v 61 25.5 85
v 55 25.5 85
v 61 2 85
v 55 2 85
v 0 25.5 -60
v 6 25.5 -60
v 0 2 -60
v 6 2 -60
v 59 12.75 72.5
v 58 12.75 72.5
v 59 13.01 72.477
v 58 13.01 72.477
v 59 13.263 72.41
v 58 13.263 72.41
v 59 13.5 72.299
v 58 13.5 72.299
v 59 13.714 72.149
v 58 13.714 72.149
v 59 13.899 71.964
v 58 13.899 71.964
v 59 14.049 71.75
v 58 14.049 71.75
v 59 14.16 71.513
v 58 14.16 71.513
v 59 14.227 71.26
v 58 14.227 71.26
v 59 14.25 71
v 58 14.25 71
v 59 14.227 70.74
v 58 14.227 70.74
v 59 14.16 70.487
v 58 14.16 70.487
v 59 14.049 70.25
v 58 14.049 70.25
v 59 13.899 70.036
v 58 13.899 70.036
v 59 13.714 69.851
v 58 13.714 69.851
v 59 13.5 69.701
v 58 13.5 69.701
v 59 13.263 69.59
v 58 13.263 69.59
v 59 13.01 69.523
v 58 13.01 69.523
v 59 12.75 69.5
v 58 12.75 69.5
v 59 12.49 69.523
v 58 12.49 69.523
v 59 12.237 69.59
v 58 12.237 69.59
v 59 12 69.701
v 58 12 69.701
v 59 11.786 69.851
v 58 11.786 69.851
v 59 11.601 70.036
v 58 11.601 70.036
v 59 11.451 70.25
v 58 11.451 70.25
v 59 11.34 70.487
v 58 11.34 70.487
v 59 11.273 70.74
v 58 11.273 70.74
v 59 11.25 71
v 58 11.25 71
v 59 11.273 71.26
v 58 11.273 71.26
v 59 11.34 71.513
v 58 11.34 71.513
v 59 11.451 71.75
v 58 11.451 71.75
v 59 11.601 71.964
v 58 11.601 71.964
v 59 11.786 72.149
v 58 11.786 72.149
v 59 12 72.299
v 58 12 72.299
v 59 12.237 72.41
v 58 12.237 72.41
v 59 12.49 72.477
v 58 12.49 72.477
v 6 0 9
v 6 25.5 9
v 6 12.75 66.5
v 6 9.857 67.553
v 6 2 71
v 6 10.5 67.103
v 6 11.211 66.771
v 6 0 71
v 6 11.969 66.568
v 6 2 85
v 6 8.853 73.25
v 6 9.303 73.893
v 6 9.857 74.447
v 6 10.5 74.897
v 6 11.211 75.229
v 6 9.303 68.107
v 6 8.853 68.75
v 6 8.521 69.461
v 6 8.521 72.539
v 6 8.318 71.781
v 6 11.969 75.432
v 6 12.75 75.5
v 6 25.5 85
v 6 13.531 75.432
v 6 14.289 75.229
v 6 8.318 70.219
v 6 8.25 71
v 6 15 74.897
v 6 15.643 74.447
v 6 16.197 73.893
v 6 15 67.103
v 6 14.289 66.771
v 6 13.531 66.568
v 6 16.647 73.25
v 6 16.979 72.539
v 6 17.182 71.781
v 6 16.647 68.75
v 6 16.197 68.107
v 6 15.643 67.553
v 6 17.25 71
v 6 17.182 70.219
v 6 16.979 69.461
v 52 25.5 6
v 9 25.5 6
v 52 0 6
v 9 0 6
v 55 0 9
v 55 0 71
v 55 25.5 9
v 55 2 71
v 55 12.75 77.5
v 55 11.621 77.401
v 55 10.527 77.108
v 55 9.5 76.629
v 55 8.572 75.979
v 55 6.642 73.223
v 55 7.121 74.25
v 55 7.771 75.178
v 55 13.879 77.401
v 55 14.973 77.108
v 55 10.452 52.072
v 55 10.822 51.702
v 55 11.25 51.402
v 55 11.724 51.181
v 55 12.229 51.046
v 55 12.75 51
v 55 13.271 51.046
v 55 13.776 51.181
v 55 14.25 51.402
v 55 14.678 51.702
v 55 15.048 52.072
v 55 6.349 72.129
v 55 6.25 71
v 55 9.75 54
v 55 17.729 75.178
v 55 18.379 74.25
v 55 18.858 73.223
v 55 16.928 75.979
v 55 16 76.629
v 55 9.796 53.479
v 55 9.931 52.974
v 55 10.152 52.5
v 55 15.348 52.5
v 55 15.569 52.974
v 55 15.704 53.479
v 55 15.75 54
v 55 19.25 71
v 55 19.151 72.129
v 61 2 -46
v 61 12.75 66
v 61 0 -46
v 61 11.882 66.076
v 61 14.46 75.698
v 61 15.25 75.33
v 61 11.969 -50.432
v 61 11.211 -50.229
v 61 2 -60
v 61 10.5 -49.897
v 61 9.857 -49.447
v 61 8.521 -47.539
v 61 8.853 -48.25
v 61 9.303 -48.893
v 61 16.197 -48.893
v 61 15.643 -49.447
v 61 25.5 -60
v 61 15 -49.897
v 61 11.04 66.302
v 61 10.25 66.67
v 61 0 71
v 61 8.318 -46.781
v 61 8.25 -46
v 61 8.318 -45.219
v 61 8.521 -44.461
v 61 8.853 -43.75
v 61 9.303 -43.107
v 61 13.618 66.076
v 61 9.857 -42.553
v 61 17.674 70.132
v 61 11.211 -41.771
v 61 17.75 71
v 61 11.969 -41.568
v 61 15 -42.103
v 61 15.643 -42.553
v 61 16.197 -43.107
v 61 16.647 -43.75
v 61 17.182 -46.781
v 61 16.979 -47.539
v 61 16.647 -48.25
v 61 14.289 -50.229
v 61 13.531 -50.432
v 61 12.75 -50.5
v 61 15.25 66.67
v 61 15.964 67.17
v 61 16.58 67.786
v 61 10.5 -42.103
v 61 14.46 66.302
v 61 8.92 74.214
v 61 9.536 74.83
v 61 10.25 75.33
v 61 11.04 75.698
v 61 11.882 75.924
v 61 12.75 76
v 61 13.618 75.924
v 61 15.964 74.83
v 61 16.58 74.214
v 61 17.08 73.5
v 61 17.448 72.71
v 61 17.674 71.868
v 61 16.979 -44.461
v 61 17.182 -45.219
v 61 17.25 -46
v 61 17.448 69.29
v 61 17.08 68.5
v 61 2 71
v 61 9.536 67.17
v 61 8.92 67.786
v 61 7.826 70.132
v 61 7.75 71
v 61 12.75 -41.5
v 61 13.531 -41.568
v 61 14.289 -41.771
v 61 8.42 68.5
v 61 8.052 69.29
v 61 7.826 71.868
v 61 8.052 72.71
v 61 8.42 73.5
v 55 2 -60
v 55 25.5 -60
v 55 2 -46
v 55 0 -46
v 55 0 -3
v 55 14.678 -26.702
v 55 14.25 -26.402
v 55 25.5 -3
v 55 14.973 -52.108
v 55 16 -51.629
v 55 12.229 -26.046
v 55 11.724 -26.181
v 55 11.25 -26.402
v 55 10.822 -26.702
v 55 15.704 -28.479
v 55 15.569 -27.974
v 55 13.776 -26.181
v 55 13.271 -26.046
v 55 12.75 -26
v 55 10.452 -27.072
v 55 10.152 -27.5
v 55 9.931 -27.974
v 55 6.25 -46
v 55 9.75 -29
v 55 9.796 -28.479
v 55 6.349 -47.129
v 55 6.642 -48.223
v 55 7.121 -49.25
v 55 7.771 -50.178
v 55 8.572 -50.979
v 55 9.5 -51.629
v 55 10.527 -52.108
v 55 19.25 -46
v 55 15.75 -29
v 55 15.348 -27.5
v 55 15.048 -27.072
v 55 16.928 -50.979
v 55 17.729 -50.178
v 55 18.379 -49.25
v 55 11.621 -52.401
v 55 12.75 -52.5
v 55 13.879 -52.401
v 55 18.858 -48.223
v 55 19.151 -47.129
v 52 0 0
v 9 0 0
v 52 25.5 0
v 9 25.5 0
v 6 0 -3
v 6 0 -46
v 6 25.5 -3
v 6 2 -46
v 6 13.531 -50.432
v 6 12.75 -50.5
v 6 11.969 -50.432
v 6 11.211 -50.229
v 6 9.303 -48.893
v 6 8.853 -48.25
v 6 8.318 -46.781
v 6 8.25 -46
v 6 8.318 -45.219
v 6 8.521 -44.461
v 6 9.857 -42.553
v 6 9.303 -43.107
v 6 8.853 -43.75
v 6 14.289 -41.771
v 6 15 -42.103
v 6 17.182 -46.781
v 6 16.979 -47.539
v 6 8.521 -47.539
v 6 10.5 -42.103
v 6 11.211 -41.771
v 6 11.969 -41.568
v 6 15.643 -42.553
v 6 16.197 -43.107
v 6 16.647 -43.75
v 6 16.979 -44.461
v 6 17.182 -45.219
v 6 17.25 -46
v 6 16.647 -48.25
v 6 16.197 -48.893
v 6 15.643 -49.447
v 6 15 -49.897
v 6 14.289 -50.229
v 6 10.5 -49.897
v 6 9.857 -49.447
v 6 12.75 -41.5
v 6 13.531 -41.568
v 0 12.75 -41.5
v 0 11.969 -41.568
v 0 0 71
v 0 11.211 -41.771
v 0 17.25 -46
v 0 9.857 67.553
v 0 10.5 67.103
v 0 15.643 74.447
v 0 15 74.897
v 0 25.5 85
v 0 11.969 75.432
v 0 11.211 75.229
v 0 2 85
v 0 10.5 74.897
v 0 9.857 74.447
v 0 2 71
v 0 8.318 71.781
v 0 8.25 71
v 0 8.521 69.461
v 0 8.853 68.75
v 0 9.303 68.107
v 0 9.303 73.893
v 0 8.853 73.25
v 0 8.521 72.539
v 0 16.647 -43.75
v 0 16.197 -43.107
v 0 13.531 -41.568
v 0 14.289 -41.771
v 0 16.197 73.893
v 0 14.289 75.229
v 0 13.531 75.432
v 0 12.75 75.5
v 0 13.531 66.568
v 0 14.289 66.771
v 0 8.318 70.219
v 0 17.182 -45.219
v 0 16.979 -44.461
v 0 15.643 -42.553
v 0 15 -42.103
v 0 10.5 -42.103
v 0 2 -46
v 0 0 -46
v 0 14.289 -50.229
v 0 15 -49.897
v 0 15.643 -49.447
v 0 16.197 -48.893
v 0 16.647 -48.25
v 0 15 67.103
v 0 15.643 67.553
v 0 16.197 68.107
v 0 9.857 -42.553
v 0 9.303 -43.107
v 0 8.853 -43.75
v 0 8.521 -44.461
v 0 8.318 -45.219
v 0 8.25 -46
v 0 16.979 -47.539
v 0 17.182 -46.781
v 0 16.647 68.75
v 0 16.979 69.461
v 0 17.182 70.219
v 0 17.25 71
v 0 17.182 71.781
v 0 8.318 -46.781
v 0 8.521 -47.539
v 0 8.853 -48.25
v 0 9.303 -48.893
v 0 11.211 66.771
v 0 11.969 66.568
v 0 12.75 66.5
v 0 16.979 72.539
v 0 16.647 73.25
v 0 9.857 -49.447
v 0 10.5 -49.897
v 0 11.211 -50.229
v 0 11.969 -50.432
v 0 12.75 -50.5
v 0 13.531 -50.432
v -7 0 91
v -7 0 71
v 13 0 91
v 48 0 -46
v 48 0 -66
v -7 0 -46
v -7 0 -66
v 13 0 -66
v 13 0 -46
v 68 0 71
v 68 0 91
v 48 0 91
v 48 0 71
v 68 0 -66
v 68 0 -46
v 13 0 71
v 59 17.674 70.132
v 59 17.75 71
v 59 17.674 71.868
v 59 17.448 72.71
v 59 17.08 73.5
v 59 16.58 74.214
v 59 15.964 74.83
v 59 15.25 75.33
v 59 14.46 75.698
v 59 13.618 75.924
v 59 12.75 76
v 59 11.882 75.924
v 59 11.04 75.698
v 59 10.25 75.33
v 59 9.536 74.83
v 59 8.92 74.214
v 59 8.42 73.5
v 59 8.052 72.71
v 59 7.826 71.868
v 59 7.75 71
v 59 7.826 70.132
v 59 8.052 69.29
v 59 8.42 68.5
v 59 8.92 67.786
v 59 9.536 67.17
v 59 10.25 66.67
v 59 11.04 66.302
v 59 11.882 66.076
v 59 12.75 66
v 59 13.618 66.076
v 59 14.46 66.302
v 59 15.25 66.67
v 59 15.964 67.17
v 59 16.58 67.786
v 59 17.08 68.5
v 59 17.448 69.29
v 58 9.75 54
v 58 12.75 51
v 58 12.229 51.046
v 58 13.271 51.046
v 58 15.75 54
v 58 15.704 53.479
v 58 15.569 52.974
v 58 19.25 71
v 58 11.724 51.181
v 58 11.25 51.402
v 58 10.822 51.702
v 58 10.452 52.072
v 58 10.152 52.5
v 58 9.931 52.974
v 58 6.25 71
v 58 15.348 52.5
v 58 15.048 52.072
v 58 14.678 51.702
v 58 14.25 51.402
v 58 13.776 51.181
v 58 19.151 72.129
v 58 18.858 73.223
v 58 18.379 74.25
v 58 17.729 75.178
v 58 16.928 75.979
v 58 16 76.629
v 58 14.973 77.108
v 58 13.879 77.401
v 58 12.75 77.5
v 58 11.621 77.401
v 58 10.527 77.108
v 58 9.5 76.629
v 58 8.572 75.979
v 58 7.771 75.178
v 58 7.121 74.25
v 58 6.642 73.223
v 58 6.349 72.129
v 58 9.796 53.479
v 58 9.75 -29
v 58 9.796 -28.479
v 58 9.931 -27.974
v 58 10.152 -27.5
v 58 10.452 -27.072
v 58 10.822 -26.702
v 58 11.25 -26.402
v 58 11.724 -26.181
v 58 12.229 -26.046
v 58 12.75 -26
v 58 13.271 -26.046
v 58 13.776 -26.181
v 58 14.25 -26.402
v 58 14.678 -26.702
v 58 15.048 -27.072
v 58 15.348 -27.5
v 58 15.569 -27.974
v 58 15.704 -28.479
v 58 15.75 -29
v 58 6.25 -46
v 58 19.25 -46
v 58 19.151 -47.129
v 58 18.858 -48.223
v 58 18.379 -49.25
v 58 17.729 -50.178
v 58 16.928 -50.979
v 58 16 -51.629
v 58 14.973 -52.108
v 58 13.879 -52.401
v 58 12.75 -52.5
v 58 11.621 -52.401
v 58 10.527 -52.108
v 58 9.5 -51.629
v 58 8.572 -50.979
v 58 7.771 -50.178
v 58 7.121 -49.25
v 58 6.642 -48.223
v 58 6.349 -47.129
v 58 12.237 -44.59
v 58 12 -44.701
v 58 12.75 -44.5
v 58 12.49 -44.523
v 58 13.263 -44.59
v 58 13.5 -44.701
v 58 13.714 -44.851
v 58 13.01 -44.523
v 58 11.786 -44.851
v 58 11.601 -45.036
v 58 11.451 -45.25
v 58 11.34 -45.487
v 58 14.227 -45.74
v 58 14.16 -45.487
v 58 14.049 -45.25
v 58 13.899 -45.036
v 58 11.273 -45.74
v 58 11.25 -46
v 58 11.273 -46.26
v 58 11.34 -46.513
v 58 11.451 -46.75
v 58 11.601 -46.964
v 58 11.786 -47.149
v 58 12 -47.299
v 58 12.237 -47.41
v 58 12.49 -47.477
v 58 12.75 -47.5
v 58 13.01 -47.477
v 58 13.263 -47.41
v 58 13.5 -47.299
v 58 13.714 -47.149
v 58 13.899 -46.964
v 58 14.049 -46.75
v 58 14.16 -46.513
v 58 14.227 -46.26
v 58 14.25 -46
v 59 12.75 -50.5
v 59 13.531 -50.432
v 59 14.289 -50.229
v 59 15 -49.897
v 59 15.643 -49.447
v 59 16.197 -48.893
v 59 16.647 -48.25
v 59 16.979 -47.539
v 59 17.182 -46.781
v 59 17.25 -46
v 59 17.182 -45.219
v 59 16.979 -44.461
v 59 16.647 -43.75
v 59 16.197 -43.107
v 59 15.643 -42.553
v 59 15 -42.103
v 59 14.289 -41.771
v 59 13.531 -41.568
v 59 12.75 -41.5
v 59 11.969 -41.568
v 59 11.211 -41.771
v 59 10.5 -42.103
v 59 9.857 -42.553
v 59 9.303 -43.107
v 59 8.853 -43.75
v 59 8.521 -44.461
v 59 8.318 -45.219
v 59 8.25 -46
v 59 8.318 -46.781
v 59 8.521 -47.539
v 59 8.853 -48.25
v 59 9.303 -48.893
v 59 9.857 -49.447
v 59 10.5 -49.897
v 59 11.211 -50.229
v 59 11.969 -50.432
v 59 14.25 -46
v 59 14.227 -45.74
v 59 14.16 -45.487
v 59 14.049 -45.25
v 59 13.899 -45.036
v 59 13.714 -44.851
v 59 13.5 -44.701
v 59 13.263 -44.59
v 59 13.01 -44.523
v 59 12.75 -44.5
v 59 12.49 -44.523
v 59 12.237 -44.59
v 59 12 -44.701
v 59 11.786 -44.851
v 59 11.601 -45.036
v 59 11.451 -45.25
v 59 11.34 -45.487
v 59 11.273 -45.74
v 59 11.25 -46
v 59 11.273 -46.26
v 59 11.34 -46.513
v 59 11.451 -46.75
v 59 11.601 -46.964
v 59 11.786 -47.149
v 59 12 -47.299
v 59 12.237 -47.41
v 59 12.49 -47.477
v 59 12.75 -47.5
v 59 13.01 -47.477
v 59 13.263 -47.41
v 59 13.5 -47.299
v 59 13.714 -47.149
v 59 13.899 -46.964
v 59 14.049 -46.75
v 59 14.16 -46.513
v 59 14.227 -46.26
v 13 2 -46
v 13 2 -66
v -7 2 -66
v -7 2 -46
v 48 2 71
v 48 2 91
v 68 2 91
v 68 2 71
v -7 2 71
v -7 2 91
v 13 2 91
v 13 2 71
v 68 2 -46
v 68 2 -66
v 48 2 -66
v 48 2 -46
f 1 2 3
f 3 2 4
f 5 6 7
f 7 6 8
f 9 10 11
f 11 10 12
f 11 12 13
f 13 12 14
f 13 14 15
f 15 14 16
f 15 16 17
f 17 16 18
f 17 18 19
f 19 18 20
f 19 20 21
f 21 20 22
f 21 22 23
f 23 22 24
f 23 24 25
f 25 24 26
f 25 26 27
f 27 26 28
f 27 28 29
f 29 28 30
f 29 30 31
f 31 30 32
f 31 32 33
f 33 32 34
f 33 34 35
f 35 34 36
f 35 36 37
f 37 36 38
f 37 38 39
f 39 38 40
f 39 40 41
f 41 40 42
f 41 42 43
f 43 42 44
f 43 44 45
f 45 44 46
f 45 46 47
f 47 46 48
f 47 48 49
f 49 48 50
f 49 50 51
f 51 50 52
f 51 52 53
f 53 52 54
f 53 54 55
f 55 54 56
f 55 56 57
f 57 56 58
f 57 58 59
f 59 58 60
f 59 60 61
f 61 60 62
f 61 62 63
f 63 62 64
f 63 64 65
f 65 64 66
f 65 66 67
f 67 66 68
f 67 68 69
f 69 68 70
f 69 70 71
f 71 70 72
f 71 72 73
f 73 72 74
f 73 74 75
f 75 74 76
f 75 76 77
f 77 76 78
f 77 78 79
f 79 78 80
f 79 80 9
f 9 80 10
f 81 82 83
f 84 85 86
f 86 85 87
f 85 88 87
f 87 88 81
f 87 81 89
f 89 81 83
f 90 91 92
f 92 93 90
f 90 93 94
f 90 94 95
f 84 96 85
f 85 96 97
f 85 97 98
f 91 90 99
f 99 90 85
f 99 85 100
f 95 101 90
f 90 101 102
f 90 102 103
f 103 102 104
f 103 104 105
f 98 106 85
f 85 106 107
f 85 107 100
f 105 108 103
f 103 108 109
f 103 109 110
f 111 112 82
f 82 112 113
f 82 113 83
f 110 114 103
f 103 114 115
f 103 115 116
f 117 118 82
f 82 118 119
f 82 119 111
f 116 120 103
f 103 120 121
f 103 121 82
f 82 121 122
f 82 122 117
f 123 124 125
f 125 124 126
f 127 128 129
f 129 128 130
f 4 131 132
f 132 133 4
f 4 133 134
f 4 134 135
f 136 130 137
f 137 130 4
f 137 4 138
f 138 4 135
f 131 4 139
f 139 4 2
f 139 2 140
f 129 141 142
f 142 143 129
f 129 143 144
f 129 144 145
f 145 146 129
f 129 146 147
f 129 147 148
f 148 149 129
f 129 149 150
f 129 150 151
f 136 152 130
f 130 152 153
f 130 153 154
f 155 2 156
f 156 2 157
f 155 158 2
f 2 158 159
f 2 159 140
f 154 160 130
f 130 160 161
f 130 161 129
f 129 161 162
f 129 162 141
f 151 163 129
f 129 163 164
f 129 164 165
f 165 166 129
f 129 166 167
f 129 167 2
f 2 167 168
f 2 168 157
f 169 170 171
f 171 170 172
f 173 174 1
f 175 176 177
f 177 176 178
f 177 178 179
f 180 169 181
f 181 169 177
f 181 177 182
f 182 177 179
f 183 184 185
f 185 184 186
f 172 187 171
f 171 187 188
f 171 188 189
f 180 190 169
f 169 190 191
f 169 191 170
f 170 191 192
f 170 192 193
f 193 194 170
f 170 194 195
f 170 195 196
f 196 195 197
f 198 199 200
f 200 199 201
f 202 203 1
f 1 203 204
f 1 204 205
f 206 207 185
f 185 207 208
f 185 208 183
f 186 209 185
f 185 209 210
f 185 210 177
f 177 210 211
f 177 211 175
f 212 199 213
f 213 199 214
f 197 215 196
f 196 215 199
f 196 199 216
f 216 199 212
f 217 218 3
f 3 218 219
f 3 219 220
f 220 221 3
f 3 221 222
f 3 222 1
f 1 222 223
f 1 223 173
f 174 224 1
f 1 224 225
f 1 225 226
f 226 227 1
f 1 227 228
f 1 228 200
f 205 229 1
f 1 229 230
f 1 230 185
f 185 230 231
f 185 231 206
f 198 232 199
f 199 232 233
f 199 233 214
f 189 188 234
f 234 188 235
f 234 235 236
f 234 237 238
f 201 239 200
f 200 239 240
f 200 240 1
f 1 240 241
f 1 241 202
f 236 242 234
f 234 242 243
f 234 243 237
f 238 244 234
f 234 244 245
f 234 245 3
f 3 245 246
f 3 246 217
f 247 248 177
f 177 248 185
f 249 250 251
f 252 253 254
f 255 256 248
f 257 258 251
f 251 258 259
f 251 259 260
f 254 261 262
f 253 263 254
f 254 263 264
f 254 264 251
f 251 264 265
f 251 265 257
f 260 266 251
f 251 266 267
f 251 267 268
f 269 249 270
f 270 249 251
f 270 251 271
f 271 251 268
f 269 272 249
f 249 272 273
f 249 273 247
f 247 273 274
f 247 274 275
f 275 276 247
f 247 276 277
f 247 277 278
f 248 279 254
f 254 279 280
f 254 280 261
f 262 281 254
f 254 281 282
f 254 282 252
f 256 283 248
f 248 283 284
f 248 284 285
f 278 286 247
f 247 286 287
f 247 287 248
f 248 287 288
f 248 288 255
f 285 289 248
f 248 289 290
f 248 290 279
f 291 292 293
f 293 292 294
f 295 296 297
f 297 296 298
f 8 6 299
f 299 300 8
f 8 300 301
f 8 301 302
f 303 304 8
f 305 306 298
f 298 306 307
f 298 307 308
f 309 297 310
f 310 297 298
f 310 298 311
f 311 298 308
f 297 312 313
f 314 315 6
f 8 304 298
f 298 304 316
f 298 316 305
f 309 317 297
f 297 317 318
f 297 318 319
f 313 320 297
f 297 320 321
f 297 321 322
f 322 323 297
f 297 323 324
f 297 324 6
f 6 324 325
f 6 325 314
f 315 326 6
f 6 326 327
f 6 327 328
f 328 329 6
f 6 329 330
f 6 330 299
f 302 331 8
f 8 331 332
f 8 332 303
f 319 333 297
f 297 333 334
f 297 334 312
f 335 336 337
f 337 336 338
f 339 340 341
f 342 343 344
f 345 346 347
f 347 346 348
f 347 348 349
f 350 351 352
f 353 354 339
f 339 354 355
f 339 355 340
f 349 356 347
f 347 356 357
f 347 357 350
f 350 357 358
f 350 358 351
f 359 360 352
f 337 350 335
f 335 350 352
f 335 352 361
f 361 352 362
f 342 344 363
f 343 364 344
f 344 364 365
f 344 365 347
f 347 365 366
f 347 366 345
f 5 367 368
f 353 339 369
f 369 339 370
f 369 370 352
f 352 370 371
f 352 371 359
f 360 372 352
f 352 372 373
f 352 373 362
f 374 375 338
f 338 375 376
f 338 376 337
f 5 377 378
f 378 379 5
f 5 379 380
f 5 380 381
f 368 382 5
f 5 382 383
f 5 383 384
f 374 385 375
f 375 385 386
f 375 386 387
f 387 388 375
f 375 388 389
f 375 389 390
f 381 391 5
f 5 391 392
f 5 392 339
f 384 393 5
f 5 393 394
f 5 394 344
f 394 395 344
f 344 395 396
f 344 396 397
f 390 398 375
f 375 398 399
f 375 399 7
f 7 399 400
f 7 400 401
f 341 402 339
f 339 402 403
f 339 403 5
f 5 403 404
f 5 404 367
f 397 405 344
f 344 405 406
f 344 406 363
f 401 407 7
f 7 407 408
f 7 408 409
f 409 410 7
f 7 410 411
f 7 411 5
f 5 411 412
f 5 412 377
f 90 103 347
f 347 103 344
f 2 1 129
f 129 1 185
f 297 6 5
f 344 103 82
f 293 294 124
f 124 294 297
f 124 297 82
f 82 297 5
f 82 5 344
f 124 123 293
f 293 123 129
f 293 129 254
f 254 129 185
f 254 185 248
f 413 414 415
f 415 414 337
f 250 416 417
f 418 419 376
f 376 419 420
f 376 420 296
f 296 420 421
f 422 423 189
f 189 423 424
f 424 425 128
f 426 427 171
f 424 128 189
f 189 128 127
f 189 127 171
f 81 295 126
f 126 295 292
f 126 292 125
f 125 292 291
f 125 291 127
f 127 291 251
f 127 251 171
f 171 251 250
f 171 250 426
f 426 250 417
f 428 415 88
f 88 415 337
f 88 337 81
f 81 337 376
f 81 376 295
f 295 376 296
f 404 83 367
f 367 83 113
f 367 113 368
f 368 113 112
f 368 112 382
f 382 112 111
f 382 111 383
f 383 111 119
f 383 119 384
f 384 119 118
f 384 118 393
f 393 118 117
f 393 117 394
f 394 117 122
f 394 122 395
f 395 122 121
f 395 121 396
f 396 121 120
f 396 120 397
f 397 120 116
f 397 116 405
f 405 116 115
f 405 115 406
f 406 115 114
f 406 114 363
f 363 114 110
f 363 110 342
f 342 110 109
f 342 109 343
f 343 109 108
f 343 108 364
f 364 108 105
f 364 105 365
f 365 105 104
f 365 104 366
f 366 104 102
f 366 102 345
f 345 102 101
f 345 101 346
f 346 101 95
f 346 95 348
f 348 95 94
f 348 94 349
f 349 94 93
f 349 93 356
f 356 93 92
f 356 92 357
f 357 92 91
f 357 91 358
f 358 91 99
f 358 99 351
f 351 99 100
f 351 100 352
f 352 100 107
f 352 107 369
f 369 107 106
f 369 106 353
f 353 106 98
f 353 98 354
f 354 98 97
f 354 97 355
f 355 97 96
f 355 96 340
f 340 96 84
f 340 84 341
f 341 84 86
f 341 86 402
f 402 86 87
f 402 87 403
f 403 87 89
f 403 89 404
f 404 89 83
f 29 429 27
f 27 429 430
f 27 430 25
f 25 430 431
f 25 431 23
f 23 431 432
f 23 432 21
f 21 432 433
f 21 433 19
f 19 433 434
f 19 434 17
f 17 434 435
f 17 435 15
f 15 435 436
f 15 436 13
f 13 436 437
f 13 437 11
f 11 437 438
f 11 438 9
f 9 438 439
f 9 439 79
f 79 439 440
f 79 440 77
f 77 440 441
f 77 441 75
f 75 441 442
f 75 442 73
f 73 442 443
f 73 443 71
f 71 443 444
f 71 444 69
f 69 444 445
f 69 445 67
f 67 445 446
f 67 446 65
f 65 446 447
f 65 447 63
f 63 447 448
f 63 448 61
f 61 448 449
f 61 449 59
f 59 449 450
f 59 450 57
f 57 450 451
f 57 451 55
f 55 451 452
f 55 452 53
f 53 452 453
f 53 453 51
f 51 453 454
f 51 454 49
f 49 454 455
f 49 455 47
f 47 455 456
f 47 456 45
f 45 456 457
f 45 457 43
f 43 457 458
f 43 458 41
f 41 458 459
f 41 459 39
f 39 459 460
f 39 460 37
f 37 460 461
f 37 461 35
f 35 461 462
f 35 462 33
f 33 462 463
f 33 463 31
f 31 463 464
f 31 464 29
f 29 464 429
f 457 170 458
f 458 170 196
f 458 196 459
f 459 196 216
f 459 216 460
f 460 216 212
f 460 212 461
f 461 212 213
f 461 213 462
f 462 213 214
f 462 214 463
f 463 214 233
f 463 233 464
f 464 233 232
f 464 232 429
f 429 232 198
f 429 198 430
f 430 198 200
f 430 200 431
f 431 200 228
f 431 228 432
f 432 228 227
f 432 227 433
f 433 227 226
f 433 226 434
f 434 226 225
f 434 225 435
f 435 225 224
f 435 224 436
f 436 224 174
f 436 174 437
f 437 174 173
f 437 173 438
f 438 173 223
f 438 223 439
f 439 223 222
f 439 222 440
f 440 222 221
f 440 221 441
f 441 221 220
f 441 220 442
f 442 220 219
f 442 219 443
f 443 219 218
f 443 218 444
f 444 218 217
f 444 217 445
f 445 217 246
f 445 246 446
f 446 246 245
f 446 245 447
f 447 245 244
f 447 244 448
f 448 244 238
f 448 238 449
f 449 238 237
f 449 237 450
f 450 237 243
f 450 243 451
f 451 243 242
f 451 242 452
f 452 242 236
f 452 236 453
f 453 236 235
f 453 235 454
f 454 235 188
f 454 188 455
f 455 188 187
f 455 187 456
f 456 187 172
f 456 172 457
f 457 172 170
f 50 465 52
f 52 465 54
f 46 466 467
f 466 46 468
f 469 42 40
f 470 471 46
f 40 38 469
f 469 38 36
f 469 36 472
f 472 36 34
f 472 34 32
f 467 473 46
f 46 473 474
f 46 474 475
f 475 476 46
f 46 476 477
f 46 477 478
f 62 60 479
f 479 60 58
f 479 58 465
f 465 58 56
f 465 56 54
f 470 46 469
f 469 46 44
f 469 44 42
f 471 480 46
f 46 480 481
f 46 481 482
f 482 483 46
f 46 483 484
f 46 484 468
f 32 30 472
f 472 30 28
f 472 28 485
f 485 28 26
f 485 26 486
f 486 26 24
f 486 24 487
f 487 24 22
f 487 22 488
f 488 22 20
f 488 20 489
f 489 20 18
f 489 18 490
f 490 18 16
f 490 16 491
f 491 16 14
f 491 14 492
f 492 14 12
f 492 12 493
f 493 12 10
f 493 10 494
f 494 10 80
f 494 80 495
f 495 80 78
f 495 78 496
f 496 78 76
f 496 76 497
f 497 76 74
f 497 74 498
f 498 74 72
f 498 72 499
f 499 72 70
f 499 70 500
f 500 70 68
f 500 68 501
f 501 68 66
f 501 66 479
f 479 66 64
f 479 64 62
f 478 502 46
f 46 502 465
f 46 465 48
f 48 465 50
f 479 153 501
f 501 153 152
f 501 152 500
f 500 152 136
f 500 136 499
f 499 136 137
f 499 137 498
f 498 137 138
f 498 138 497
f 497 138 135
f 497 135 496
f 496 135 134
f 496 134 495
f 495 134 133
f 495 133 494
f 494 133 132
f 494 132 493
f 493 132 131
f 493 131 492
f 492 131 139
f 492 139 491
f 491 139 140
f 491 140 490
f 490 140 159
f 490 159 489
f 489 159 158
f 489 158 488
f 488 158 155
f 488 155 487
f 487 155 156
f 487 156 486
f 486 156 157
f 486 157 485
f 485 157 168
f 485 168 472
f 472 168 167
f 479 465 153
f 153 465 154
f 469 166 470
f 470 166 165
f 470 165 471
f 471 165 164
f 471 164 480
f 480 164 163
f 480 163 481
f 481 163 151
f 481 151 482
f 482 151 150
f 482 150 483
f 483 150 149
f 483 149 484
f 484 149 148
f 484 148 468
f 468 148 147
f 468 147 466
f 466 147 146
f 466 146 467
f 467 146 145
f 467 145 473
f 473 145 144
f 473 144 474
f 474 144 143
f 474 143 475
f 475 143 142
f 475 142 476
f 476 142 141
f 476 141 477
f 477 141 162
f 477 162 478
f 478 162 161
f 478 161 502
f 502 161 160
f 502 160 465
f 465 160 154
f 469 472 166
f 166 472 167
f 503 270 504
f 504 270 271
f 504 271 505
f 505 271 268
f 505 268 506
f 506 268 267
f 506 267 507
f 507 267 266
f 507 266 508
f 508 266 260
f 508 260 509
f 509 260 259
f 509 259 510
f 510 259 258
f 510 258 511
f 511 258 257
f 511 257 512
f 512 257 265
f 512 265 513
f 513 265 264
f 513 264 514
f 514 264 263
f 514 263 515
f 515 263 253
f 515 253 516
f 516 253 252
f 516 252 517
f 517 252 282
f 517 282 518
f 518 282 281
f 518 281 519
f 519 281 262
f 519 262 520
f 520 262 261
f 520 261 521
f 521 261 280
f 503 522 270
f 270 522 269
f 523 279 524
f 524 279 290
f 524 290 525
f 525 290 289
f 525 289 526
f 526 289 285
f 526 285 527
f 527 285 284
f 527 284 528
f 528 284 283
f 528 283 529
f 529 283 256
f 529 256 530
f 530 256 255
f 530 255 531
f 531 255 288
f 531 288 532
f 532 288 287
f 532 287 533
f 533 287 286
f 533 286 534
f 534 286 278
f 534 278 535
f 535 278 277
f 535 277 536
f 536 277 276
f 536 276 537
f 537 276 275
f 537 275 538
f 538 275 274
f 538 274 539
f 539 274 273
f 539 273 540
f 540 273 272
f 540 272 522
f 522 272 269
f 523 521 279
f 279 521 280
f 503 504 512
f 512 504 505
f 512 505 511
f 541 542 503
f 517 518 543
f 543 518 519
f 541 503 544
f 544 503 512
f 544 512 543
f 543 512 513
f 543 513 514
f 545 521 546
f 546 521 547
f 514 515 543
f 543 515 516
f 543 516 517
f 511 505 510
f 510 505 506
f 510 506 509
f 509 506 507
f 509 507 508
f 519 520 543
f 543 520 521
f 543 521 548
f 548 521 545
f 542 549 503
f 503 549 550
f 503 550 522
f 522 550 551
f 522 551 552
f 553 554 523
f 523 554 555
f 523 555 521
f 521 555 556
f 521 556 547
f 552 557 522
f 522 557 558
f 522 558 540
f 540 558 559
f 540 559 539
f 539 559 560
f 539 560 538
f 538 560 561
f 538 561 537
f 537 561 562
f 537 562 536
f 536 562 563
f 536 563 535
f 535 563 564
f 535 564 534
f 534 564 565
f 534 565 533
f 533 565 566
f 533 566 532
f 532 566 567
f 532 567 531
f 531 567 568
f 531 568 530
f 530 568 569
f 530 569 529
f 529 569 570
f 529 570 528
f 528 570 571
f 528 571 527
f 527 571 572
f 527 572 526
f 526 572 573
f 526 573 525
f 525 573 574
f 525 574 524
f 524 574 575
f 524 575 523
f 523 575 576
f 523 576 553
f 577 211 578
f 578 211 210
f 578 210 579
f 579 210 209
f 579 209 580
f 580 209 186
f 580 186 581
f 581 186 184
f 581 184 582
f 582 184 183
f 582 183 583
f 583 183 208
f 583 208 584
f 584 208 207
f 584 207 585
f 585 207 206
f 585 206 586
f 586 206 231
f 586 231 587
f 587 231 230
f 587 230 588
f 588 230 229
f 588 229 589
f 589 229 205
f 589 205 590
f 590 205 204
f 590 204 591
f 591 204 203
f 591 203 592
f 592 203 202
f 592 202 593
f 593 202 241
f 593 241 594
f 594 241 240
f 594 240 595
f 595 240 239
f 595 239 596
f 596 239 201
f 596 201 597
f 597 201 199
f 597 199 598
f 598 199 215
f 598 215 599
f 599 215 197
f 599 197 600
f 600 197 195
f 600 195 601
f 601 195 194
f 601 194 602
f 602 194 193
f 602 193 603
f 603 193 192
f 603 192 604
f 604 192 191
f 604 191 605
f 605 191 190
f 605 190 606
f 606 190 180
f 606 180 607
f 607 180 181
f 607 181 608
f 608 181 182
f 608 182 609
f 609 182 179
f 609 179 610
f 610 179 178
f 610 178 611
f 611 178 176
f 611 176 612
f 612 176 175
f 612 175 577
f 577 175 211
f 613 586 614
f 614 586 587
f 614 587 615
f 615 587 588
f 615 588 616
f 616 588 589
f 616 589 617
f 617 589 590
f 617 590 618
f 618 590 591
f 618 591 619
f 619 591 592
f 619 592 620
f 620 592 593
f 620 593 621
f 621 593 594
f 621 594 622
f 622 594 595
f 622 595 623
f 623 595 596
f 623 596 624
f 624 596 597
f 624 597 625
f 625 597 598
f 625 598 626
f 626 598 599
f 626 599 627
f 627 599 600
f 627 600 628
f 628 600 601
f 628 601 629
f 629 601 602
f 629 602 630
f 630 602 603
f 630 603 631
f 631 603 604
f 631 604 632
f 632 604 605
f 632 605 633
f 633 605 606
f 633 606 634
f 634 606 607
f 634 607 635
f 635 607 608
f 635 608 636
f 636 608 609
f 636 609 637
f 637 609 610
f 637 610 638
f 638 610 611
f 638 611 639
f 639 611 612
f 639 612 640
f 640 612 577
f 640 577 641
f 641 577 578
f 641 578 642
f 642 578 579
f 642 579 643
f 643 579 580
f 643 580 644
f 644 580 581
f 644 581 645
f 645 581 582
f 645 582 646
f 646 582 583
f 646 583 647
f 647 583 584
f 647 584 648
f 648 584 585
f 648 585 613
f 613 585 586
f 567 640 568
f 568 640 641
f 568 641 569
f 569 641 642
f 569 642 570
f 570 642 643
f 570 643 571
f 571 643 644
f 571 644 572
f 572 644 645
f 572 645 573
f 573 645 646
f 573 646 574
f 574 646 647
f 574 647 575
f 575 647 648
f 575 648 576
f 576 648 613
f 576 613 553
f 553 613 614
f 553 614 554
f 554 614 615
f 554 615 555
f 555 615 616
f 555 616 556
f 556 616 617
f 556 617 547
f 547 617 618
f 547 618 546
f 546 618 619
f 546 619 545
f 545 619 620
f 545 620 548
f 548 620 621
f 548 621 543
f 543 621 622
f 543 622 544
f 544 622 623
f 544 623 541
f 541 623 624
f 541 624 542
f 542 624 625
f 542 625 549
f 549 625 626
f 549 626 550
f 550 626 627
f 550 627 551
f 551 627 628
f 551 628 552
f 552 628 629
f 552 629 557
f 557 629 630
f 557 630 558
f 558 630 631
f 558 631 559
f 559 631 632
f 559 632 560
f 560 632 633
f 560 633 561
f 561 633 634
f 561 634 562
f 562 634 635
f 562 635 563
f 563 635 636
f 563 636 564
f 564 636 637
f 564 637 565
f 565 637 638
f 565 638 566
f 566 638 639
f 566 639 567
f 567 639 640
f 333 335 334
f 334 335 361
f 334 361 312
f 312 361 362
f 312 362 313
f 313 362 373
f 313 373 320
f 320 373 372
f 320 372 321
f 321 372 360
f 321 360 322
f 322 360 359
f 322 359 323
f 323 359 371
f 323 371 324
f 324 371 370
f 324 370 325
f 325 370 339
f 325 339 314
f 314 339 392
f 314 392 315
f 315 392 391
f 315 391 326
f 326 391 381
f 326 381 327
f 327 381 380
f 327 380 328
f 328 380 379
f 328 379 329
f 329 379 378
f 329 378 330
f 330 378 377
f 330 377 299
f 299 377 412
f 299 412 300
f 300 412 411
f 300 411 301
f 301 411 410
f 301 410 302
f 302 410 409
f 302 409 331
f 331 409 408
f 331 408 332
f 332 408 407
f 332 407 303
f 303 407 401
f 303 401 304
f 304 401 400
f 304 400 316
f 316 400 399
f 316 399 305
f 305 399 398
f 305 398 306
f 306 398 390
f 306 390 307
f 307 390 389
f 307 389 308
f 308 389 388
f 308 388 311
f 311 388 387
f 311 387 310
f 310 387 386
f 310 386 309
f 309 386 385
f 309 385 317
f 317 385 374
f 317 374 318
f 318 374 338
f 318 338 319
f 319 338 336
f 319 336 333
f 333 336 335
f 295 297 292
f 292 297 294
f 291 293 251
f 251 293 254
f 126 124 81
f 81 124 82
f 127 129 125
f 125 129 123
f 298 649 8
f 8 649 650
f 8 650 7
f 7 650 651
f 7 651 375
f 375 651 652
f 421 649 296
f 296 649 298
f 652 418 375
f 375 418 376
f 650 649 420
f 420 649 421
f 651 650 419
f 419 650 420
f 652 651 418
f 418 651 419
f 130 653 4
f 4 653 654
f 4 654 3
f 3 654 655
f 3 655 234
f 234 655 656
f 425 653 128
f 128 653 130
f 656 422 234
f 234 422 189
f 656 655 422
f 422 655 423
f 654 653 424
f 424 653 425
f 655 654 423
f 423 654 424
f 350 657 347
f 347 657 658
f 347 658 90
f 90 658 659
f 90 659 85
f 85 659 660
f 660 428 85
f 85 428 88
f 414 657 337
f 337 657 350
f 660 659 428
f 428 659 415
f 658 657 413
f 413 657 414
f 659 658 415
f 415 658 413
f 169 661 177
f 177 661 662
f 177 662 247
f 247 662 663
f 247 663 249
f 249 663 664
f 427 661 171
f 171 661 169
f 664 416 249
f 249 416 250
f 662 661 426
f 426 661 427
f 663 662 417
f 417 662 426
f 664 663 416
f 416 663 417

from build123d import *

# Parameters (mm, degrees)
BOSS_EXTRUDE1_DEPTH     = 25.5
SKETCH2_R               = 4.5
CUT_EXTRUDE1_DEPTH      = 25
SKETCH3_R               = 1.5
CUT_EXTRUDE2_DEPTH      = 10
SKETCH4_R               = 5
CUT_EXTRUDE3_DEPTH      = 2
CUT_EXTRUDE4_DEPTH      = 3
CUT_EXTRUDE5_DEPTH      = 3
SKETCH7_R               = 4.5
CUT_EXTRUDE6_DEPTH      = 2
CUT_EXTRUDE7_DEPTH      = 108.685885798
CUT_EXTRUDE7_DEPTH_BACK = 108.685885798
SKETCH8_R               = 1.5
CUT_EXTRUDE8_START      = -10
SKETCH9_R               = 4.5
CUT_EXTRUDE8_DEPTH      = 10
BOSS_EXTRUDE2_DEPTH     = 25.5
SKETCH11_W              = 20
SKETCH11_H              = 20
BOSS_EXTRUDE3_DEPTH     = 2


with BuildPart() as part:
    # Sketch1 → Boss-Extrude1 (new body)
    with BuildSketch(Plane(origin=(0, 0, 0), x_dir=(1, 0, 0), z_dir=(0, 1, 0))):
        Polygon((6, -6), (55, -6), (55, -85), (61, -85), (61, 60), (55, 60), (55, 0), (6, 0), (6, 60), (0, 60), (0, -85), (6, -85), align=None)
    extrude(amount=BOSS_EXTRUDE1_DEPTH)

    # Sketch2 → Cut-Extrude1 (cut)
    with BuildSketch(Plane(origin=(6, 0, 0), x_dir=(0, 0, -1), z_dir=(1, 0, 0))):
        with Locations((-71, 12.75)):
            Circle(SKETCH2_R)
    extrude(amount=-CUT_EXTRUDE1_DEPTH, mode=Mode.SUBTRACT)

    # Sketch3 → Cut-Extrude2 (cut)
    with BuildSketch(Plane.ZY.offset(-55)):
        with Locations((71, 12.75)):
            Circle(SKETCH3_R)
    extrude(amount=-CUT_EXTRUDE2_DEPTH, mode=Mode.SUBTRACT)

    # Sketch4 → Cut-Extrude3 (cut)
    with BuildSketch(Plane(origin=(61, 0, 0), x_dir=(0, 0, -1), z_dir=(1, 0, 0))):
        with Locations((-71, 12.75)):
            Circle(SKETCH4_R)
    extrude(amount=-CUT_EXTRUDE3_DEPTH, mode=Mode.SUBTRACT)

    # Sketch5 → Cut-Extrude4 (cut)
    with BuildSketch(Plane.ZY.offset(-55)):
        with BuildLine():
            Line((71, 19.25), (54, 15.75))
            ThreePointArc((54, 15.75), (51, 12.75), (54, 9.75))
            Line((54, 9.75), (71, 6.25))
            ThreePointArc((71, 6.25), (77.5, 12.75), (71, 19.25))
        make_face()
    extrude(amount=-CUT_EXTRUDE4_DEPTH, mode=Mode.SUBTRACT)

    # Sketch6 → Cut-Extrude5 (cut)
    with BuildSketch(Plane.ZY.offset(-55)):
        with BuildLine():
            Line((-29, 9.75), (-46, 6.25))
            ThreePointArc((-46, 6.25), (-52.5, 12.75), (-46, 19.25))
            Line((-46, 19.25), (-29, 15.75))
            ThreePointArc((-29, 15.75), (-26, 12.75), (-29, 9.75))
        make_face()
    extrude(amount=-CUT_EXTRUDE5_DEPTH, mode=Mode.SUBTRACT)

    # Sketch7 → Cut-Extrude6 (cut)
    with BuildSketch(Plane(origin=(61, 0, 0), x_dir=(0, 0, -1), z_dir=(1, 0, 0))):
        with Locations((46, 12.75)):
            Circle(SKETCH7_R)
    extrude(amount=-CUT_EXTRUDE6_DEPTH, mode=Mode.SUBTRACT)

    # Sketch8 → Cut-Extrude7 (cut, two sides: drawn at the far end of the back side and taken through both)
    with BuildSketch(Plane(origin=(61, 0, 0), x_dir=(0, 0, -1), z_dir=(1, 0, 0)).offset(-CUT_EXTRUDE7_DEPTH_BACK)):
        with Locations((46, 12.75)):
            Circle(SKETCH8_R)
    extrude(amount=CUT_EXTRUDE7_DEPTH + CUT_EXTRUDE7_DEPTH_BACK, mode=Mode.SUBTRACT)

    # Sketch9 → Cut-Extrude8 (cut)
    with BuildSketch(Plane.ZY.offset(CUT_EXTRUDE8_START)):
        with Locations(Location((-46, 12.75, 0), (0, 0, 180))):
            Circle(SKETCH9_R)
    extrude(amount=CUT_EXTRUDE8_DEPTH, mode=Mode.SUBTRACT)

    # Sketch10 → Boss-Extrude2 (add)
    with BuildSketch(Plane(origin=(0, 25.5, 0), x_dir=(1, 0, 0), z_dir=(0, 1, 0))):
        Polygon((9, -6), (6, -6), (6, -9), align=None)
        Polygon((6, 0), (6, 3), (9, 0), align=None)
        Polygon((52, 0), (55, 0), (55, 3), align=None)
        Polygon((55, -6), (55, -9), (52, -6), align=None)
    extrude(amount=-BOSS_EXTRUDE2_DEPTH)

    # Sketch11 → Boss-Extrude3 (add)
    with BuildSketch(Plane.XZ):
        with Locations((3, -56)):
            Rectangle(SKETCH11_W, SKETCH11_H)
        with Locations((3, 81)):
            Rectangle(SKETCH11_W, SKETCH11_H)
        with Locations((58, 81)):
            Rectangle(SKETCH11_W, SKETCH11_H)
        with Locations((58, -56)):
            Rectangle(SKETCH11_W, SKETCH11_H)
    extrude(amount=-BOSS_EXTRUDE3_DEPTH)


solid = part.part
